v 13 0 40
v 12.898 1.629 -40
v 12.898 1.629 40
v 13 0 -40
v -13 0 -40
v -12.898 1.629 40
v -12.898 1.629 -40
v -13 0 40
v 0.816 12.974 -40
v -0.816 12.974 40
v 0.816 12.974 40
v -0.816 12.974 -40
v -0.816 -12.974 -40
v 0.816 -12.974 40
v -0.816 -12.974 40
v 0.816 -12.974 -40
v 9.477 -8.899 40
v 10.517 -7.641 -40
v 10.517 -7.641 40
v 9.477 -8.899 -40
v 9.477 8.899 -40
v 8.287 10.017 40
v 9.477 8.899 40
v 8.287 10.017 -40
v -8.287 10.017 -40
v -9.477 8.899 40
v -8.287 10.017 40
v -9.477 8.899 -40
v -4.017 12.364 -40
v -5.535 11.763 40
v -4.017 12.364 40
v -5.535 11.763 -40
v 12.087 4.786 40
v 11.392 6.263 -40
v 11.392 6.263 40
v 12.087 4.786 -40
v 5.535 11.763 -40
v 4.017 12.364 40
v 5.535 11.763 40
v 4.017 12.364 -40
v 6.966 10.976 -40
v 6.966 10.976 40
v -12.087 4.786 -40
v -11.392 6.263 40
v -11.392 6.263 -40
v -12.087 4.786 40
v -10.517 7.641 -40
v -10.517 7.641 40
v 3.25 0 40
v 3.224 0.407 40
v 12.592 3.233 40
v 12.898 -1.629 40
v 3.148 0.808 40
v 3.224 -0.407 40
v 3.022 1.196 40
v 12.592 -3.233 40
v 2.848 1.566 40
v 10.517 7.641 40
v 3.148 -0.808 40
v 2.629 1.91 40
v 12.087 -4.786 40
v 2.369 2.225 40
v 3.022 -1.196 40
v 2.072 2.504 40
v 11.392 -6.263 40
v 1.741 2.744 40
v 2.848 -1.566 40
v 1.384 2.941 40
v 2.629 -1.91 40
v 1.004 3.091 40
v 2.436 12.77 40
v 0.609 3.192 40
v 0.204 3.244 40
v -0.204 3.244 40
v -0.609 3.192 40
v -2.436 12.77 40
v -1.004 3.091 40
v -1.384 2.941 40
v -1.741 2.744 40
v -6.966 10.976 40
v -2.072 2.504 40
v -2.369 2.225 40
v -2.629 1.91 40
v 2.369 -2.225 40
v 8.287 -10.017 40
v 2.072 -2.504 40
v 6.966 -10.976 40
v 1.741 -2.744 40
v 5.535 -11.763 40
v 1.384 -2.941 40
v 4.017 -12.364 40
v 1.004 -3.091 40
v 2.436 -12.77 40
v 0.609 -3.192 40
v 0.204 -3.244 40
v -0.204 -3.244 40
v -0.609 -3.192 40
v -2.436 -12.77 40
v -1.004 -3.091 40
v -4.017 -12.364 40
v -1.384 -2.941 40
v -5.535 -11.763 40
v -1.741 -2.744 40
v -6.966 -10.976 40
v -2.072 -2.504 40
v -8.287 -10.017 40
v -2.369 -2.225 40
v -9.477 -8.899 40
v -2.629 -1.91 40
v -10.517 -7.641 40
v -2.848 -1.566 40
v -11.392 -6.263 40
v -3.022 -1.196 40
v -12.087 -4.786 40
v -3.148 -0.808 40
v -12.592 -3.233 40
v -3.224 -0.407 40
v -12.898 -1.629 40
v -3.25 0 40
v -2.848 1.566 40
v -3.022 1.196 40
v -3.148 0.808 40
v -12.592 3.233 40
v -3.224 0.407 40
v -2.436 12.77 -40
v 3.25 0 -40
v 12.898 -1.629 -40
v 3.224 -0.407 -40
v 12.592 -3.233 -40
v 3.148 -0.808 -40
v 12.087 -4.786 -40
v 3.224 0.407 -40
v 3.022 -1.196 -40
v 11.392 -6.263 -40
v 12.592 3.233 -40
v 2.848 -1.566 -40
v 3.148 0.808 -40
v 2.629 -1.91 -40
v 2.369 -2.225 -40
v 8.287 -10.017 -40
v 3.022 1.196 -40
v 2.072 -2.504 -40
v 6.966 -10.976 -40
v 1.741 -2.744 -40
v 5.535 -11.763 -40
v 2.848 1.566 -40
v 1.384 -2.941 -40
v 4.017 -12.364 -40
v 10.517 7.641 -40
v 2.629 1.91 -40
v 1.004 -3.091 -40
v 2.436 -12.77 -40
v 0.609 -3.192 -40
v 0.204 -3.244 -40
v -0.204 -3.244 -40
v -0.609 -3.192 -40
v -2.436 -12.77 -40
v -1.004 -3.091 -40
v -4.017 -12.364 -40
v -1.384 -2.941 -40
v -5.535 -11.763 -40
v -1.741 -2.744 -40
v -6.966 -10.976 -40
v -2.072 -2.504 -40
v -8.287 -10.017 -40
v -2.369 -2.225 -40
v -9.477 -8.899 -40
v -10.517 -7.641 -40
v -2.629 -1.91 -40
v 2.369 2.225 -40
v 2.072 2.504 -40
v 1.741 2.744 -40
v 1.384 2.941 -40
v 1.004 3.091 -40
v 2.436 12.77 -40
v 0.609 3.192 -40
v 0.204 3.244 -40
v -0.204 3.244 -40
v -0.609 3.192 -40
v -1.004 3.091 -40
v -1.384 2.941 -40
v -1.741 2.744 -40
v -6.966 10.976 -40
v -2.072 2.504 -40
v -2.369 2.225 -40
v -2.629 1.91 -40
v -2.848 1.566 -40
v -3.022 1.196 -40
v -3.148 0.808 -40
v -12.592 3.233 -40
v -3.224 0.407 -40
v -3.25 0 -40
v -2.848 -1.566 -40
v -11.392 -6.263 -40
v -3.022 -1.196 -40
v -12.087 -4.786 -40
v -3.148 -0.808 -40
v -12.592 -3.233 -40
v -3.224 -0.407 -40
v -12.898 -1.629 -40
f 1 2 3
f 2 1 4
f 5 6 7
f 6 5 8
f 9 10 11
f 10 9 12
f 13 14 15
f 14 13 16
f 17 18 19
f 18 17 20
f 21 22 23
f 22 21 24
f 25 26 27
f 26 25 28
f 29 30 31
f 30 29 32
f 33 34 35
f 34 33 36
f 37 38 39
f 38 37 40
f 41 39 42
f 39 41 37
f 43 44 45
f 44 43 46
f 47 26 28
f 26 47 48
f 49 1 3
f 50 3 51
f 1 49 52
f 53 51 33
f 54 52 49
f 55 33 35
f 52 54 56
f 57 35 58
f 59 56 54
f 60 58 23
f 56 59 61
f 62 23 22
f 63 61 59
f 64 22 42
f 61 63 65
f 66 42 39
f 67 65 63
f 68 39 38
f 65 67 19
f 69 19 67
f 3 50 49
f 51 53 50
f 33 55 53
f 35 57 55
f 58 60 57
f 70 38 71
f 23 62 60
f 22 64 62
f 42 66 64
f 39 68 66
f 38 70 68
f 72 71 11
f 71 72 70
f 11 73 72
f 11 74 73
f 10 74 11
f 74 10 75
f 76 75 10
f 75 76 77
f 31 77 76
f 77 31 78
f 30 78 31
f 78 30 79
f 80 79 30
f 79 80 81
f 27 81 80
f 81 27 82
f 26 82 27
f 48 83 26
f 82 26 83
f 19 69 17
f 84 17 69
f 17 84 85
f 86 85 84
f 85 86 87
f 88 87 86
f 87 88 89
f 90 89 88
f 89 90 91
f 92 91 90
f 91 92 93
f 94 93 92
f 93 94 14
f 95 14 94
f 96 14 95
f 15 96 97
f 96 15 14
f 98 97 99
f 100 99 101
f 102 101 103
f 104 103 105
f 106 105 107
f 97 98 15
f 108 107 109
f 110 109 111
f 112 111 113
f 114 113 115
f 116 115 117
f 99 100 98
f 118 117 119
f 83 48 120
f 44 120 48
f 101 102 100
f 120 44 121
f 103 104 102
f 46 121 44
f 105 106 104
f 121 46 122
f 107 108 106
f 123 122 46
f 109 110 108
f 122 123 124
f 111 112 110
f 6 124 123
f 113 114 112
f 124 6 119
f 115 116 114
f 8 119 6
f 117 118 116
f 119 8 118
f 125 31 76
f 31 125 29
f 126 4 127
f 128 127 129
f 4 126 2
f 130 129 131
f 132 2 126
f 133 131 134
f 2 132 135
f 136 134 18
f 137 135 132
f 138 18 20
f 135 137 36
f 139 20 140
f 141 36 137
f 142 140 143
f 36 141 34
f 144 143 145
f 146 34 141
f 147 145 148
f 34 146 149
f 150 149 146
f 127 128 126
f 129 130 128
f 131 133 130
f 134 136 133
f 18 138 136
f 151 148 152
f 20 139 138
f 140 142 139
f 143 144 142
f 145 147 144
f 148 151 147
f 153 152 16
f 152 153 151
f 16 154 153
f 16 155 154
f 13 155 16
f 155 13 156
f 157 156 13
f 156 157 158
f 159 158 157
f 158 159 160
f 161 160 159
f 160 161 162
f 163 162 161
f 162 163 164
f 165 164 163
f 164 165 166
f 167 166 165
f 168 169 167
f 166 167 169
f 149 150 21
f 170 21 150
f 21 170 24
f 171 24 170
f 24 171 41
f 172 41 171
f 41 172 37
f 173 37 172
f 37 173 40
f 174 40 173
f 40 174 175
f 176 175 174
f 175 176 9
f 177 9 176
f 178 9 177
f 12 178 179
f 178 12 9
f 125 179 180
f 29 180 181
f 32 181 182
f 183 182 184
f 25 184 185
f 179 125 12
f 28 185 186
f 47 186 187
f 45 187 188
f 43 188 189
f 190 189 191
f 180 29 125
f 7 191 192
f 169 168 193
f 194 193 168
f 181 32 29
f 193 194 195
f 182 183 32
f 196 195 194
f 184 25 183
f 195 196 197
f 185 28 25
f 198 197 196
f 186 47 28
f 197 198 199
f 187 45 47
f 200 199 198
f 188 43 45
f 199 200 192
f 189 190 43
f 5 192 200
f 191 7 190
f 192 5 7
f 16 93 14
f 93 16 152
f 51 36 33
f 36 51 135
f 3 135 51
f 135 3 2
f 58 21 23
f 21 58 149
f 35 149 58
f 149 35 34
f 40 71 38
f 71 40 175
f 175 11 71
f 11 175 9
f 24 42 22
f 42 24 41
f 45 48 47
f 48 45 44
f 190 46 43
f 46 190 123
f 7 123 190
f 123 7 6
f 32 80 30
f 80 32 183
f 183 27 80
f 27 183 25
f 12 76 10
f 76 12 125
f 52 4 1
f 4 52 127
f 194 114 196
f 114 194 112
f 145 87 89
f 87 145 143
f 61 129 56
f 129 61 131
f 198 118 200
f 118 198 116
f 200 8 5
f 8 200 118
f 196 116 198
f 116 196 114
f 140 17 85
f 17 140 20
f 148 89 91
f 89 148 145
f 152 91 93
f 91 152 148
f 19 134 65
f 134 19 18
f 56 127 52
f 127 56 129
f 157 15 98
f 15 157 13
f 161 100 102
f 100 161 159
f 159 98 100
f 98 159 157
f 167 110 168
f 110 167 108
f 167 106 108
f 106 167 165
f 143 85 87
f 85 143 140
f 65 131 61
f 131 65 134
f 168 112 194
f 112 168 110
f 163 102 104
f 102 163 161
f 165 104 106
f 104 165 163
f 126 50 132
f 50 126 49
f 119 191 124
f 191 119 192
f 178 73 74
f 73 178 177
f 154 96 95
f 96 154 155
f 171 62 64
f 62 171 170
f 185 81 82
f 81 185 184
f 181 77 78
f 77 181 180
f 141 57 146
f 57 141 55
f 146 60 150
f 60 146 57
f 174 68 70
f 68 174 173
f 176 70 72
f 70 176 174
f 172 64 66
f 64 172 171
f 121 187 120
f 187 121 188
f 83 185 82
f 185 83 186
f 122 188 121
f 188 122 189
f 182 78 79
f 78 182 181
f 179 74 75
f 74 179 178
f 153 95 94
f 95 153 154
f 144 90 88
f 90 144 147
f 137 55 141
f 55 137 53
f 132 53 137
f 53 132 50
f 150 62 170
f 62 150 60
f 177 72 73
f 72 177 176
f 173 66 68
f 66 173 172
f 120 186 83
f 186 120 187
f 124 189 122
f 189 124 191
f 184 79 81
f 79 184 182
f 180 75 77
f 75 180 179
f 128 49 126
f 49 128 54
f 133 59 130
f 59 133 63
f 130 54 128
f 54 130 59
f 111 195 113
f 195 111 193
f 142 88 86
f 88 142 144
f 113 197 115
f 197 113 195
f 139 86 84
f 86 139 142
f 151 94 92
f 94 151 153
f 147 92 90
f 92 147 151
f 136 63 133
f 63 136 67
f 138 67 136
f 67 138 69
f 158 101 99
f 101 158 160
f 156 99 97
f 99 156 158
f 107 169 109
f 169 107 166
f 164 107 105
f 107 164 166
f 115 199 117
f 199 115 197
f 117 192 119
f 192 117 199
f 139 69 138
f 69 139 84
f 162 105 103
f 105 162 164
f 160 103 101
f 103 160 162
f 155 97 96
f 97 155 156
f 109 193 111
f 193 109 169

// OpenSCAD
$fn = 50;


difference() {
	union() {
		translate(v = [0, 0, -40.0000000000]) {
			cylinder(h = 80, r = 13.0000000000);
		}
	}
	union() {
		translate(v = [0, 0, -100.0000000000]) {
			cylinder(h = 200, r = 3.2500000000);
		}
	}
}
